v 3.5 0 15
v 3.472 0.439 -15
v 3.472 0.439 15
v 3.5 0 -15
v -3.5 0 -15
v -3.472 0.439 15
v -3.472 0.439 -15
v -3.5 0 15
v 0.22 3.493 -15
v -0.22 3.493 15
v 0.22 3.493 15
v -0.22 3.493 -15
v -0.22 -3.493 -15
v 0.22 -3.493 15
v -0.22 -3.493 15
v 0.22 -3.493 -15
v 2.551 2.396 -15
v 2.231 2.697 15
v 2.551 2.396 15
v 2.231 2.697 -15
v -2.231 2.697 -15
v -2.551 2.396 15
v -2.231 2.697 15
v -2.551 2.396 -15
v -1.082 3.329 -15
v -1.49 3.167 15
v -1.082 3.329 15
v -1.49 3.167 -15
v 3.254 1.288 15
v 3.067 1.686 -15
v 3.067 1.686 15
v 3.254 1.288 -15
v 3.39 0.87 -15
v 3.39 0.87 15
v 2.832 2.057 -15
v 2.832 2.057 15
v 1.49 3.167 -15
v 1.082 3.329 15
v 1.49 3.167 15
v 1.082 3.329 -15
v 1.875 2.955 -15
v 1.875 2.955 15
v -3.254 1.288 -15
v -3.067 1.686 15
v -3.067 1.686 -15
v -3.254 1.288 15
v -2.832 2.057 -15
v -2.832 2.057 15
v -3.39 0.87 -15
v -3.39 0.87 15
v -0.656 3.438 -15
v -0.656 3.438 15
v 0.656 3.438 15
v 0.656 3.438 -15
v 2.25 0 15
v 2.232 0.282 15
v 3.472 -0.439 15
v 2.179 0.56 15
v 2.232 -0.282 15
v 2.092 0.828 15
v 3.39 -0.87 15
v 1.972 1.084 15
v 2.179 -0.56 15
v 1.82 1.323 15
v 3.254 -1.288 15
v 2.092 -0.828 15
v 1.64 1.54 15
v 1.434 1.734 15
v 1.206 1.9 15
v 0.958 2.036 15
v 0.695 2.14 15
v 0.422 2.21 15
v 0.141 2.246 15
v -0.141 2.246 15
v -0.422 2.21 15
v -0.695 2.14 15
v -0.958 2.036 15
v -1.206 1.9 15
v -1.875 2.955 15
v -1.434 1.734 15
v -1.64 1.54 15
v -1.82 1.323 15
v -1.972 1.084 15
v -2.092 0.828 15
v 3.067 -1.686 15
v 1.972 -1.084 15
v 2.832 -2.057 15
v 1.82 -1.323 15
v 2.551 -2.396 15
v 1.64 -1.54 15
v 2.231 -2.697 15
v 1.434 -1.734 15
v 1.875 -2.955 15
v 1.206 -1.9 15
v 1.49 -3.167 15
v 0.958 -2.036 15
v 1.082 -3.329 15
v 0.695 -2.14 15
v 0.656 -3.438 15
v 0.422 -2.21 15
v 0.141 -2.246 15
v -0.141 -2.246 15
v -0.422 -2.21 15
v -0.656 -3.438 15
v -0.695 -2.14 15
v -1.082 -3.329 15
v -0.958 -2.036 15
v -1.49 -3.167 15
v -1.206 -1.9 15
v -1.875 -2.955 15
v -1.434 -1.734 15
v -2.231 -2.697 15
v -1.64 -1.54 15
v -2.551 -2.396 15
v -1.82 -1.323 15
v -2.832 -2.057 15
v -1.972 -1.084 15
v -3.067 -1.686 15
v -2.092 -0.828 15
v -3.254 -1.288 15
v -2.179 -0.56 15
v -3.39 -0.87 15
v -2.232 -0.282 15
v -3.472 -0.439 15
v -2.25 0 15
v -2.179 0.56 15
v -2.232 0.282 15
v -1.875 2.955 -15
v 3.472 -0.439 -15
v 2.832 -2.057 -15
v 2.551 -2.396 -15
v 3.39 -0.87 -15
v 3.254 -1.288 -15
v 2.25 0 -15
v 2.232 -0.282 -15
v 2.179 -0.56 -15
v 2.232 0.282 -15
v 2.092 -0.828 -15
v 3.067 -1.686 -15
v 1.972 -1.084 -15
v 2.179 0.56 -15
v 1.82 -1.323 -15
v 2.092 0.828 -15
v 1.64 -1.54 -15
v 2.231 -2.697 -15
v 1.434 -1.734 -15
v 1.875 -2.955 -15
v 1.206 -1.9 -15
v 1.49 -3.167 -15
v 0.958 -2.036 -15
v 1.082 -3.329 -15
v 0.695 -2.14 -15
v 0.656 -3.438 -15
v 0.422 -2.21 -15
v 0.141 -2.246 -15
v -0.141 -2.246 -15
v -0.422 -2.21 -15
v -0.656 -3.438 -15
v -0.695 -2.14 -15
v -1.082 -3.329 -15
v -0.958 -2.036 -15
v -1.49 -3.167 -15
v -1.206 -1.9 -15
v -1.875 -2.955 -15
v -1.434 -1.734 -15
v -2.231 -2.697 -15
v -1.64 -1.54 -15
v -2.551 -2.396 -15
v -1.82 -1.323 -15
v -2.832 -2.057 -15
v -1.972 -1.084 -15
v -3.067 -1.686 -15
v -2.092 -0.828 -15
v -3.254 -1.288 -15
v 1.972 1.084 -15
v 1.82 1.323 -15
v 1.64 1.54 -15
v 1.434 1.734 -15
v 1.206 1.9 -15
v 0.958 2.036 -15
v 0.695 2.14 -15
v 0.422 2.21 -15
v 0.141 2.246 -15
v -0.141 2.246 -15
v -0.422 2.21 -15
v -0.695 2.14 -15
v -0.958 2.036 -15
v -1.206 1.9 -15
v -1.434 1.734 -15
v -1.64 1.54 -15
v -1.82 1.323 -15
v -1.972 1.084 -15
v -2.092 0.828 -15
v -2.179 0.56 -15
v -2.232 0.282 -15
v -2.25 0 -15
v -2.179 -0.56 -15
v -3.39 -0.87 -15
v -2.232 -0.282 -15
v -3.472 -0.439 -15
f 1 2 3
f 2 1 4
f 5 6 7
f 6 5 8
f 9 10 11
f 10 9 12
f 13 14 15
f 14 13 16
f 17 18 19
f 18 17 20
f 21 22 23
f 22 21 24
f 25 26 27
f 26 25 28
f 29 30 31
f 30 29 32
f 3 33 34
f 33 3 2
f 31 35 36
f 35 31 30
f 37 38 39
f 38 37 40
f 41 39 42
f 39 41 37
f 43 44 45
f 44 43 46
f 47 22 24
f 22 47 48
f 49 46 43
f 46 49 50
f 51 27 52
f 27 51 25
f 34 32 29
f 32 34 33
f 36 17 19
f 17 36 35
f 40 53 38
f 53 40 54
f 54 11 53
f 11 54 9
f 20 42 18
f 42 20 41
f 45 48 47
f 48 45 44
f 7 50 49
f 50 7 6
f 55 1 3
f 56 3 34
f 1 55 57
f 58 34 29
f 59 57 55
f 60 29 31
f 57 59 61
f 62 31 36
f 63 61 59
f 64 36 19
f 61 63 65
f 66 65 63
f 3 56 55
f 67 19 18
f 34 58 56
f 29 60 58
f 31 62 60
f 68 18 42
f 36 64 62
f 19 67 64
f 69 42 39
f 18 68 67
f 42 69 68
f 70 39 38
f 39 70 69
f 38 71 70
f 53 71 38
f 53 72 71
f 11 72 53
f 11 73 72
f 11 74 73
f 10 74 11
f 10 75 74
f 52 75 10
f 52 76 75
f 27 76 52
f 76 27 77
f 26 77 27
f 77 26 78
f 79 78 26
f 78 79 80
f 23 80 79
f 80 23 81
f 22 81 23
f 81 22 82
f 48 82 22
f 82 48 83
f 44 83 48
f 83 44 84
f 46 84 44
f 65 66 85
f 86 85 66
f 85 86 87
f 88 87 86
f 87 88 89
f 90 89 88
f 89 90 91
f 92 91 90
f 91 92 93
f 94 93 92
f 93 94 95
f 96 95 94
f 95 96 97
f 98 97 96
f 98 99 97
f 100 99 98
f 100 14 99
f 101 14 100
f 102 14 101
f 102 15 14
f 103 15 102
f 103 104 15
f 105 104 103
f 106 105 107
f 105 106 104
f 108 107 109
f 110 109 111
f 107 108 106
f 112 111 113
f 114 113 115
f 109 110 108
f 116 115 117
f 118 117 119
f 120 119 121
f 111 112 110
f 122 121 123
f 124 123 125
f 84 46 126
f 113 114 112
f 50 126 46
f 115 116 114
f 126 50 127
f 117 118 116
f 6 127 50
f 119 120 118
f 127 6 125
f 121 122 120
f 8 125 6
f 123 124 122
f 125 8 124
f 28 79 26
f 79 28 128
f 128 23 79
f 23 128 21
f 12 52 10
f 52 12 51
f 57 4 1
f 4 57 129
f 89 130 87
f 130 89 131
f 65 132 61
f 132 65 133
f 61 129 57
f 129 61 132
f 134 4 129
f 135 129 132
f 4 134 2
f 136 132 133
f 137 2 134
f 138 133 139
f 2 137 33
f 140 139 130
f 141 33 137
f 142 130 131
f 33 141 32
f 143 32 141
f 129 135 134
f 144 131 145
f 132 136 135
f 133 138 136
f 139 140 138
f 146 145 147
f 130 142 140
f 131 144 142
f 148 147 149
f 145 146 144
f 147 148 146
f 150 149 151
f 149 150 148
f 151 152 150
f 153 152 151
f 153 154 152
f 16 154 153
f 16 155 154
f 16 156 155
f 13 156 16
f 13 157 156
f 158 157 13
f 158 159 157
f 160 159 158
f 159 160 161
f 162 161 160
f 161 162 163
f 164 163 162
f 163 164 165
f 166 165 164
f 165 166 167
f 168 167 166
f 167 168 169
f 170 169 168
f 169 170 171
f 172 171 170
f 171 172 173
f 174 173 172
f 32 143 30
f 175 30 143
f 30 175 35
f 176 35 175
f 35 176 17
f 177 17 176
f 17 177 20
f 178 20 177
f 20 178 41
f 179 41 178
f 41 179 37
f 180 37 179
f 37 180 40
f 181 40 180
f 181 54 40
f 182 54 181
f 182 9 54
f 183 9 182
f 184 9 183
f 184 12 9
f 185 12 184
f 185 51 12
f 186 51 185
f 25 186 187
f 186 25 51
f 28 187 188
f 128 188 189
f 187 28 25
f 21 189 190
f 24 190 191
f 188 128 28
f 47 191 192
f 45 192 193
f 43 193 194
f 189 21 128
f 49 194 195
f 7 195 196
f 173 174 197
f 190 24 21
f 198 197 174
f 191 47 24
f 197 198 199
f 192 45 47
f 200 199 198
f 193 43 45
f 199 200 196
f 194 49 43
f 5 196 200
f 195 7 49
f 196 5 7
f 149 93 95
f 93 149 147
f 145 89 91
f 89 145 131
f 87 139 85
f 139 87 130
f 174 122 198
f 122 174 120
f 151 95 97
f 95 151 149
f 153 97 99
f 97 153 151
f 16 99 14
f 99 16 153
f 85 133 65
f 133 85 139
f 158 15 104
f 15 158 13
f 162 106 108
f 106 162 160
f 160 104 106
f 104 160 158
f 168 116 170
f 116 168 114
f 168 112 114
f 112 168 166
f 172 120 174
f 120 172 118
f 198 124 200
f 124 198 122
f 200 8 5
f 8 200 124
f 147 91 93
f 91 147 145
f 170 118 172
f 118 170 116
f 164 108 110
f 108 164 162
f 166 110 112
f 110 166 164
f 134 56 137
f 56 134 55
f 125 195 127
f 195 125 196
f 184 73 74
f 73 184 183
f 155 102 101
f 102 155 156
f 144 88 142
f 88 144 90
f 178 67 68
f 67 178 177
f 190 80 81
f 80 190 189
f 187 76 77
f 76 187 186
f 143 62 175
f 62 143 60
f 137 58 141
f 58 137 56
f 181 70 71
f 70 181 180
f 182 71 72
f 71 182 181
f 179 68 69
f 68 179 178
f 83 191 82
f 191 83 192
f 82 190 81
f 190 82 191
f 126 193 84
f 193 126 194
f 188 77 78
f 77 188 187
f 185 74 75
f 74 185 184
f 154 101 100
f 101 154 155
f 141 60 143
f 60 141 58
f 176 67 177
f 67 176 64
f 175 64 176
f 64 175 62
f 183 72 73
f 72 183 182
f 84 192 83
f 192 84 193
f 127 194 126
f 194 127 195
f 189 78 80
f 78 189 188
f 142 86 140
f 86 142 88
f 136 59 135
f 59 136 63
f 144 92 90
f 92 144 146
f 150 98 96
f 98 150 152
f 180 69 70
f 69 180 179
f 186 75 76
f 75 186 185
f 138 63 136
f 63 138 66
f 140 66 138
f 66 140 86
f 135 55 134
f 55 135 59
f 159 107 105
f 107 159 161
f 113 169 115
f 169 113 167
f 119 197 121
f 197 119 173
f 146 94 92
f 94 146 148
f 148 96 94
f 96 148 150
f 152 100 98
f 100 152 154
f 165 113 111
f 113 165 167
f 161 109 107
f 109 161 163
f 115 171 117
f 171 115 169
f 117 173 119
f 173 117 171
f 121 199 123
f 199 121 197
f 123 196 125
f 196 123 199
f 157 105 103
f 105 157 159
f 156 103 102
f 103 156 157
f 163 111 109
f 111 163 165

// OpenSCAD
$fn = 50;


difference() {
	union() {
		translate(v = [0, 0, -15.0000000000]) {
			cylinder(h = 30, r = 3.5000000000);
		}
	}
	union() {
		translate(v = [0, 0, -100.0000000000]) {
			cylinder(h = 200, r = 2.2500000000);
		}
	}
}
